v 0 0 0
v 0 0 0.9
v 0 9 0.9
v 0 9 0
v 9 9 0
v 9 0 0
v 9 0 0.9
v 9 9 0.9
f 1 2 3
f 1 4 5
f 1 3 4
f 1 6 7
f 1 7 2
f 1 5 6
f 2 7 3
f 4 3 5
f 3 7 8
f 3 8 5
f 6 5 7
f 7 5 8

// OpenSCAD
/* Warning, this is a very basic generator with a lot of approximation 
input data : [VQFN, LZX, 9x9x0.9mm, 64, , A, C04-00514A]
generated by com.zoubworld.electronics.cad.model3d.Basic
Date : Sun Feb 15 10:50:48 CET 2026
*/

//body
color("black")
translate([0,0,0])
cube([9.0,9.0,0.9], center=false);
